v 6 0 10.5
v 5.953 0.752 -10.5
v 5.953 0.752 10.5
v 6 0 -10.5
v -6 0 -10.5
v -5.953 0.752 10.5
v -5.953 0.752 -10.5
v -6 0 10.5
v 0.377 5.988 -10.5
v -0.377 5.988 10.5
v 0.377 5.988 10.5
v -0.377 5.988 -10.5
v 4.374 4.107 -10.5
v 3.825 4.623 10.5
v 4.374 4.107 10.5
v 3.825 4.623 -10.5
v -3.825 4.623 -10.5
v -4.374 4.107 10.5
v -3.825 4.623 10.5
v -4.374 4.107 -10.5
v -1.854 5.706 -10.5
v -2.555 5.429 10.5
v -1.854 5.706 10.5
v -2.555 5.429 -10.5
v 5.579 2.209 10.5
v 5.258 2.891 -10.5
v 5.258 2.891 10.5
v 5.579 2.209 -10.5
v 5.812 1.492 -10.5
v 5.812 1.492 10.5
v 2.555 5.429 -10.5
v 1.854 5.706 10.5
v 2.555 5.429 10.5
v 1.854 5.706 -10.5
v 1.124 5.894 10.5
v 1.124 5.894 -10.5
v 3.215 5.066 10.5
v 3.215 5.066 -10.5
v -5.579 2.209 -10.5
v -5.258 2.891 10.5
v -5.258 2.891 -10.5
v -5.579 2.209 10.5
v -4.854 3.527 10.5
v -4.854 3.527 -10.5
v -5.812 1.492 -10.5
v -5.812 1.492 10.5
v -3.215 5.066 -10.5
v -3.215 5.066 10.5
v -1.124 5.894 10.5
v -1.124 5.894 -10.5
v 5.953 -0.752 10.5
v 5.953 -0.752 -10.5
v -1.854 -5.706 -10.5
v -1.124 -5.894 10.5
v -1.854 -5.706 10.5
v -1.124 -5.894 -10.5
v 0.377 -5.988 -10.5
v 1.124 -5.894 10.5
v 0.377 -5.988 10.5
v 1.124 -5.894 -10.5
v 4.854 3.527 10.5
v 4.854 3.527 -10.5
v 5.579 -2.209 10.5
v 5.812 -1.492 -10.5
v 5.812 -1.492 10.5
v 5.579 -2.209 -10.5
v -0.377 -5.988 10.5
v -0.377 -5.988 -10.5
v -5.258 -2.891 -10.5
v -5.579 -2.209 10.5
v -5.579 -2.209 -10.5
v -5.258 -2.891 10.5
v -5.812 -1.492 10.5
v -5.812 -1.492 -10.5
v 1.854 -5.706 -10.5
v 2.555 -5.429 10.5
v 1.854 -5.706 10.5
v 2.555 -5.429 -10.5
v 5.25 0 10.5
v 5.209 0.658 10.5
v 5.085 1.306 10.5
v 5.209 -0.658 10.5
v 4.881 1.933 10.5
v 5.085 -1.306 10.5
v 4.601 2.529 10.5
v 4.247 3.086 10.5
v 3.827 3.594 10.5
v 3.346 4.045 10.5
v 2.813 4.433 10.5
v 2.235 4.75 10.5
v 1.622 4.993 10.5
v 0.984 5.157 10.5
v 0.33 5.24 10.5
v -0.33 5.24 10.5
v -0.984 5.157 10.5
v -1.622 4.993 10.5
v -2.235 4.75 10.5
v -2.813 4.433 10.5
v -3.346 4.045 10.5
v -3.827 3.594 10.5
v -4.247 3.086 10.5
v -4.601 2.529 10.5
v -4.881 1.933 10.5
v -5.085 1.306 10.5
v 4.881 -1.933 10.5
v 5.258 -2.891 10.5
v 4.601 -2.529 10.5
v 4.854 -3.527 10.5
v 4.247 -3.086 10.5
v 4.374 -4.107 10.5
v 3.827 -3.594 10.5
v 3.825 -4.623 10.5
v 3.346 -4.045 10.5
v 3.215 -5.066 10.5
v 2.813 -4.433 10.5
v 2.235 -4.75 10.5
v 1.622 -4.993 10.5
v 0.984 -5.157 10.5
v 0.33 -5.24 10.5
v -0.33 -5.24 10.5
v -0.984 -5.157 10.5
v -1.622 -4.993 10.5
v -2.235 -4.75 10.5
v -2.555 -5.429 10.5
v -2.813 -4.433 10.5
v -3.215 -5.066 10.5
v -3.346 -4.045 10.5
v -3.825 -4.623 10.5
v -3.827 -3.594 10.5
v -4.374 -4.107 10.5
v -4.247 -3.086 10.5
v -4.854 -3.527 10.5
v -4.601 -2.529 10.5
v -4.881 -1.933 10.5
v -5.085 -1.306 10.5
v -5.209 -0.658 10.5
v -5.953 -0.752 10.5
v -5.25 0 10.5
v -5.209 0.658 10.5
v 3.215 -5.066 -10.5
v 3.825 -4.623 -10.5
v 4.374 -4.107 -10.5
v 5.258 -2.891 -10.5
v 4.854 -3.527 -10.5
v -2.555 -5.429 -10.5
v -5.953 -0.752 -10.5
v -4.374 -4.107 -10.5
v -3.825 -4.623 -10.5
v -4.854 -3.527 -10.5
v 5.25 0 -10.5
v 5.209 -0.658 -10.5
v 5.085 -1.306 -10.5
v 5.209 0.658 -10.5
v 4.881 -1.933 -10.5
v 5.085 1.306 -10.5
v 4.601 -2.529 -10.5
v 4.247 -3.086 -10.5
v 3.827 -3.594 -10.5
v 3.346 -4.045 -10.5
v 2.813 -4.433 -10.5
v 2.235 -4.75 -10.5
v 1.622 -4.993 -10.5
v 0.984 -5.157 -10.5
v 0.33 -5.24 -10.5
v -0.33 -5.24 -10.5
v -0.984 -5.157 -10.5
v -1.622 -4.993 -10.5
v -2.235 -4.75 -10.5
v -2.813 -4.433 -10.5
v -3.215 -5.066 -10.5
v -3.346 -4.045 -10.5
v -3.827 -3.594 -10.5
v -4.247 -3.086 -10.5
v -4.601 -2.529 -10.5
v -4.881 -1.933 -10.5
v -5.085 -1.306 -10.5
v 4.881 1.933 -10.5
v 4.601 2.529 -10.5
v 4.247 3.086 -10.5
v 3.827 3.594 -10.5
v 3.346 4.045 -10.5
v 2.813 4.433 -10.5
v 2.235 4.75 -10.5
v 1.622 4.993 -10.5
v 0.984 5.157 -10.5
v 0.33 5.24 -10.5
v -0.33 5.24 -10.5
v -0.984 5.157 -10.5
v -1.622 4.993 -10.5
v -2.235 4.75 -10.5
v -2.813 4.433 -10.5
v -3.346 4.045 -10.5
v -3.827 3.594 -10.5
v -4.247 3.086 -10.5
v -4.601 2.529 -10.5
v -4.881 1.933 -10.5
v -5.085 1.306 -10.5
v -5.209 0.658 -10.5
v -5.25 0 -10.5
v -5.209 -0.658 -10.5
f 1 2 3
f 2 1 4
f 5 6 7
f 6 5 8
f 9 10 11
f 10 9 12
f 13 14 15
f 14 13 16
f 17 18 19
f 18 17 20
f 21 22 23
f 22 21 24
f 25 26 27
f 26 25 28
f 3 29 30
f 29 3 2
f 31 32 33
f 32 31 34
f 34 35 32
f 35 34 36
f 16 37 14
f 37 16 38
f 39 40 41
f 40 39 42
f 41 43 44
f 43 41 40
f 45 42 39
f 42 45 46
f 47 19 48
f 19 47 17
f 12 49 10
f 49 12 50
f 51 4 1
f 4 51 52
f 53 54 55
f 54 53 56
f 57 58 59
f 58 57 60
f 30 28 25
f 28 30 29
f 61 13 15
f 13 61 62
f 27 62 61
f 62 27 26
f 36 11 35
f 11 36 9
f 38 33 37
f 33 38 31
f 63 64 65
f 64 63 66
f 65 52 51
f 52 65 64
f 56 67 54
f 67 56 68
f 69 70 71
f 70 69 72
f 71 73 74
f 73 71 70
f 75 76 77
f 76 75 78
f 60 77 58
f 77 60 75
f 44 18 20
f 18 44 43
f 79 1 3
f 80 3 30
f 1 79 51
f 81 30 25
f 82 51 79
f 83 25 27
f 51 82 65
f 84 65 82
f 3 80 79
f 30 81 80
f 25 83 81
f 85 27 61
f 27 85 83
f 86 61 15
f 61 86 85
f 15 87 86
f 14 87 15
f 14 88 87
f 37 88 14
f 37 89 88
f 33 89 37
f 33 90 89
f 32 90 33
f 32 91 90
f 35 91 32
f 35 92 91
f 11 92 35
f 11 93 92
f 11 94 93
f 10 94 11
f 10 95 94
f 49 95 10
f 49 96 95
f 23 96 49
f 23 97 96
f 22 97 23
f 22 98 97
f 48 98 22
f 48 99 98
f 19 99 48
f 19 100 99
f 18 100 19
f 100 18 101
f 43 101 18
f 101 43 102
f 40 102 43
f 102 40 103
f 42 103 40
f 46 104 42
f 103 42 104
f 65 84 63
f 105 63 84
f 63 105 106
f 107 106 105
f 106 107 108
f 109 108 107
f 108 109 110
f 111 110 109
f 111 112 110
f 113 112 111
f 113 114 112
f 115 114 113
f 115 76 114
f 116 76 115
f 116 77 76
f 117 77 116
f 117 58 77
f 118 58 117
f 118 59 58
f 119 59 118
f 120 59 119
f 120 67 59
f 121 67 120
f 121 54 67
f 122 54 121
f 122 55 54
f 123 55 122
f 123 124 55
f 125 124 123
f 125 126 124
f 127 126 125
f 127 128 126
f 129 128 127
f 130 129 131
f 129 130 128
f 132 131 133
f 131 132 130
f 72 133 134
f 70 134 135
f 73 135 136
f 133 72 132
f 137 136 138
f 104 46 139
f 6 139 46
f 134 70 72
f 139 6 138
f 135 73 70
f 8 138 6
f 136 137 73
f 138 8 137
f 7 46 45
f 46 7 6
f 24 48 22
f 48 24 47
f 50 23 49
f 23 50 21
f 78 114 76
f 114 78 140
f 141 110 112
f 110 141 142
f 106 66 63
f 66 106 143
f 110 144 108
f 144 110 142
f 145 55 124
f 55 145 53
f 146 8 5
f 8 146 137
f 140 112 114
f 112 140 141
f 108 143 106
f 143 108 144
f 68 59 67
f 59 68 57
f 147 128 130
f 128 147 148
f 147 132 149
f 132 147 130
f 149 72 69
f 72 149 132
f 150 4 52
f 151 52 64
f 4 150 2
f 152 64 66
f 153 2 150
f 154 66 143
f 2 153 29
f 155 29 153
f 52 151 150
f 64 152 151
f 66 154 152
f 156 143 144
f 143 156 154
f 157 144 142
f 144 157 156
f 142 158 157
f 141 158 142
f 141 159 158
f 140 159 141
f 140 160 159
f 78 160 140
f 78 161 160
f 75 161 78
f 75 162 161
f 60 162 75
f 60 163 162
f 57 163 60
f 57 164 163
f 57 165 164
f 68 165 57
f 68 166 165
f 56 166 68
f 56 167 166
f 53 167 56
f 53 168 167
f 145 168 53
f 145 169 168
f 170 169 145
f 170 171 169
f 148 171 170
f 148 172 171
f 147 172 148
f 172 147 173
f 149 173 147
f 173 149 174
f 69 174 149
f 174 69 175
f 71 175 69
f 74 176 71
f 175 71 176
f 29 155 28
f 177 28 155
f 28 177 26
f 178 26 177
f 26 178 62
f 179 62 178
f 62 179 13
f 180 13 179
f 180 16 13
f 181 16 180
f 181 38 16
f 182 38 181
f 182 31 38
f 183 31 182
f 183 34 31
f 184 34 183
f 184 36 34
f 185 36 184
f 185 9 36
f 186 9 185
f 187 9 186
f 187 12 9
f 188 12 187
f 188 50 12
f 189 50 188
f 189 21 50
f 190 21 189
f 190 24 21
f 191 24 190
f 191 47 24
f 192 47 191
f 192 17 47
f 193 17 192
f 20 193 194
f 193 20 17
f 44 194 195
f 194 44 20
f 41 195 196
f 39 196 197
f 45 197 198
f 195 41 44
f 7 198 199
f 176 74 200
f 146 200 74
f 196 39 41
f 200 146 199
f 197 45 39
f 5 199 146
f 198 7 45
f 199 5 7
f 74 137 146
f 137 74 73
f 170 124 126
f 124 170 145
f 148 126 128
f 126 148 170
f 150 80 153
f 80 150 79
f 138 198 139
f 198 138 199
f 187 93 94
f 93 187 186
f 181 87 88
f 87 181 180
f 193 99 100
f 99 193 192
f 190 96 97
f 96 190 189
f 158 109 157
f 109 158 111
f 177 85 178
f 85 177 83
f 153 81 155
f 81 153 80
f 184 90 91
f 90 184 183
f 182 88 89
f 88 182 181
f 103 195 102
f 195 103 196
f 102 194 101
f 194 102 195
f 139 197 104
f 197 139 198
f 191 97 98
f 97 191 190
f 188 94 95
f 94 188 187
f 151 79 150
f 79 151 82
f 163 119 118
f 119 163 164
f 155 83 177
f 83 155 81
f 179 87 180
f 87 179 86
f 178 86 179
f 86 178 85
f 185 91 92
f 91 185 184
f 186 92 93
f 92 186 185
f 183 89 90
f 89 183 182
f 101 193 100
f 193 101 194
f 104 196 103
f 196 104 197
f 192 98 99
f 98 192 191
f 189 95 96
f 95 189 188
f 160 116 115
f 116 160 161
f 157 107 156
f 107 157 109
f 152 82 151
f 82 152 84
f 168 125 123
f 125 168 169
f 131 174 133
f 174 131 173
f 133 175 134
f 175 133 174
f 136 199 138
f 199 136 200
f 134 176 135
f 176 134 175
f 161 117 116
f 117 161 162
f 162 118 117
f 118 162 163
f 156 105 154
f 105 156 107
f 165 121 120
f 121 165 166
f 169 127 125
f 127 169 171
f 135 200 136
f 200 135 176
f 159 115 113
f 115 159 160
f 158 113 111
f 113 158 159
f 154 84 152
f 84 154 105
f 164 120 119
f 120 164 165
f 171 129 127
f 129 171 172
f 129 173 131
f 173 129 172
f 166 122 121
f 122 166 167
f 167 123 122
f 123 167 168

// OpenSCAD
$fn = 50;


difference() {
	union() {
		translate(v = [0, 0, -10.5000000000]) {
			cylinder(h = 21, r = 6.0000000000);
		}
	}
	union() {
		translate(v = [0, 0, -100.0000000000]) {
			cylinder(h = 200, r = 5.2500000000);
		}
	}
}
